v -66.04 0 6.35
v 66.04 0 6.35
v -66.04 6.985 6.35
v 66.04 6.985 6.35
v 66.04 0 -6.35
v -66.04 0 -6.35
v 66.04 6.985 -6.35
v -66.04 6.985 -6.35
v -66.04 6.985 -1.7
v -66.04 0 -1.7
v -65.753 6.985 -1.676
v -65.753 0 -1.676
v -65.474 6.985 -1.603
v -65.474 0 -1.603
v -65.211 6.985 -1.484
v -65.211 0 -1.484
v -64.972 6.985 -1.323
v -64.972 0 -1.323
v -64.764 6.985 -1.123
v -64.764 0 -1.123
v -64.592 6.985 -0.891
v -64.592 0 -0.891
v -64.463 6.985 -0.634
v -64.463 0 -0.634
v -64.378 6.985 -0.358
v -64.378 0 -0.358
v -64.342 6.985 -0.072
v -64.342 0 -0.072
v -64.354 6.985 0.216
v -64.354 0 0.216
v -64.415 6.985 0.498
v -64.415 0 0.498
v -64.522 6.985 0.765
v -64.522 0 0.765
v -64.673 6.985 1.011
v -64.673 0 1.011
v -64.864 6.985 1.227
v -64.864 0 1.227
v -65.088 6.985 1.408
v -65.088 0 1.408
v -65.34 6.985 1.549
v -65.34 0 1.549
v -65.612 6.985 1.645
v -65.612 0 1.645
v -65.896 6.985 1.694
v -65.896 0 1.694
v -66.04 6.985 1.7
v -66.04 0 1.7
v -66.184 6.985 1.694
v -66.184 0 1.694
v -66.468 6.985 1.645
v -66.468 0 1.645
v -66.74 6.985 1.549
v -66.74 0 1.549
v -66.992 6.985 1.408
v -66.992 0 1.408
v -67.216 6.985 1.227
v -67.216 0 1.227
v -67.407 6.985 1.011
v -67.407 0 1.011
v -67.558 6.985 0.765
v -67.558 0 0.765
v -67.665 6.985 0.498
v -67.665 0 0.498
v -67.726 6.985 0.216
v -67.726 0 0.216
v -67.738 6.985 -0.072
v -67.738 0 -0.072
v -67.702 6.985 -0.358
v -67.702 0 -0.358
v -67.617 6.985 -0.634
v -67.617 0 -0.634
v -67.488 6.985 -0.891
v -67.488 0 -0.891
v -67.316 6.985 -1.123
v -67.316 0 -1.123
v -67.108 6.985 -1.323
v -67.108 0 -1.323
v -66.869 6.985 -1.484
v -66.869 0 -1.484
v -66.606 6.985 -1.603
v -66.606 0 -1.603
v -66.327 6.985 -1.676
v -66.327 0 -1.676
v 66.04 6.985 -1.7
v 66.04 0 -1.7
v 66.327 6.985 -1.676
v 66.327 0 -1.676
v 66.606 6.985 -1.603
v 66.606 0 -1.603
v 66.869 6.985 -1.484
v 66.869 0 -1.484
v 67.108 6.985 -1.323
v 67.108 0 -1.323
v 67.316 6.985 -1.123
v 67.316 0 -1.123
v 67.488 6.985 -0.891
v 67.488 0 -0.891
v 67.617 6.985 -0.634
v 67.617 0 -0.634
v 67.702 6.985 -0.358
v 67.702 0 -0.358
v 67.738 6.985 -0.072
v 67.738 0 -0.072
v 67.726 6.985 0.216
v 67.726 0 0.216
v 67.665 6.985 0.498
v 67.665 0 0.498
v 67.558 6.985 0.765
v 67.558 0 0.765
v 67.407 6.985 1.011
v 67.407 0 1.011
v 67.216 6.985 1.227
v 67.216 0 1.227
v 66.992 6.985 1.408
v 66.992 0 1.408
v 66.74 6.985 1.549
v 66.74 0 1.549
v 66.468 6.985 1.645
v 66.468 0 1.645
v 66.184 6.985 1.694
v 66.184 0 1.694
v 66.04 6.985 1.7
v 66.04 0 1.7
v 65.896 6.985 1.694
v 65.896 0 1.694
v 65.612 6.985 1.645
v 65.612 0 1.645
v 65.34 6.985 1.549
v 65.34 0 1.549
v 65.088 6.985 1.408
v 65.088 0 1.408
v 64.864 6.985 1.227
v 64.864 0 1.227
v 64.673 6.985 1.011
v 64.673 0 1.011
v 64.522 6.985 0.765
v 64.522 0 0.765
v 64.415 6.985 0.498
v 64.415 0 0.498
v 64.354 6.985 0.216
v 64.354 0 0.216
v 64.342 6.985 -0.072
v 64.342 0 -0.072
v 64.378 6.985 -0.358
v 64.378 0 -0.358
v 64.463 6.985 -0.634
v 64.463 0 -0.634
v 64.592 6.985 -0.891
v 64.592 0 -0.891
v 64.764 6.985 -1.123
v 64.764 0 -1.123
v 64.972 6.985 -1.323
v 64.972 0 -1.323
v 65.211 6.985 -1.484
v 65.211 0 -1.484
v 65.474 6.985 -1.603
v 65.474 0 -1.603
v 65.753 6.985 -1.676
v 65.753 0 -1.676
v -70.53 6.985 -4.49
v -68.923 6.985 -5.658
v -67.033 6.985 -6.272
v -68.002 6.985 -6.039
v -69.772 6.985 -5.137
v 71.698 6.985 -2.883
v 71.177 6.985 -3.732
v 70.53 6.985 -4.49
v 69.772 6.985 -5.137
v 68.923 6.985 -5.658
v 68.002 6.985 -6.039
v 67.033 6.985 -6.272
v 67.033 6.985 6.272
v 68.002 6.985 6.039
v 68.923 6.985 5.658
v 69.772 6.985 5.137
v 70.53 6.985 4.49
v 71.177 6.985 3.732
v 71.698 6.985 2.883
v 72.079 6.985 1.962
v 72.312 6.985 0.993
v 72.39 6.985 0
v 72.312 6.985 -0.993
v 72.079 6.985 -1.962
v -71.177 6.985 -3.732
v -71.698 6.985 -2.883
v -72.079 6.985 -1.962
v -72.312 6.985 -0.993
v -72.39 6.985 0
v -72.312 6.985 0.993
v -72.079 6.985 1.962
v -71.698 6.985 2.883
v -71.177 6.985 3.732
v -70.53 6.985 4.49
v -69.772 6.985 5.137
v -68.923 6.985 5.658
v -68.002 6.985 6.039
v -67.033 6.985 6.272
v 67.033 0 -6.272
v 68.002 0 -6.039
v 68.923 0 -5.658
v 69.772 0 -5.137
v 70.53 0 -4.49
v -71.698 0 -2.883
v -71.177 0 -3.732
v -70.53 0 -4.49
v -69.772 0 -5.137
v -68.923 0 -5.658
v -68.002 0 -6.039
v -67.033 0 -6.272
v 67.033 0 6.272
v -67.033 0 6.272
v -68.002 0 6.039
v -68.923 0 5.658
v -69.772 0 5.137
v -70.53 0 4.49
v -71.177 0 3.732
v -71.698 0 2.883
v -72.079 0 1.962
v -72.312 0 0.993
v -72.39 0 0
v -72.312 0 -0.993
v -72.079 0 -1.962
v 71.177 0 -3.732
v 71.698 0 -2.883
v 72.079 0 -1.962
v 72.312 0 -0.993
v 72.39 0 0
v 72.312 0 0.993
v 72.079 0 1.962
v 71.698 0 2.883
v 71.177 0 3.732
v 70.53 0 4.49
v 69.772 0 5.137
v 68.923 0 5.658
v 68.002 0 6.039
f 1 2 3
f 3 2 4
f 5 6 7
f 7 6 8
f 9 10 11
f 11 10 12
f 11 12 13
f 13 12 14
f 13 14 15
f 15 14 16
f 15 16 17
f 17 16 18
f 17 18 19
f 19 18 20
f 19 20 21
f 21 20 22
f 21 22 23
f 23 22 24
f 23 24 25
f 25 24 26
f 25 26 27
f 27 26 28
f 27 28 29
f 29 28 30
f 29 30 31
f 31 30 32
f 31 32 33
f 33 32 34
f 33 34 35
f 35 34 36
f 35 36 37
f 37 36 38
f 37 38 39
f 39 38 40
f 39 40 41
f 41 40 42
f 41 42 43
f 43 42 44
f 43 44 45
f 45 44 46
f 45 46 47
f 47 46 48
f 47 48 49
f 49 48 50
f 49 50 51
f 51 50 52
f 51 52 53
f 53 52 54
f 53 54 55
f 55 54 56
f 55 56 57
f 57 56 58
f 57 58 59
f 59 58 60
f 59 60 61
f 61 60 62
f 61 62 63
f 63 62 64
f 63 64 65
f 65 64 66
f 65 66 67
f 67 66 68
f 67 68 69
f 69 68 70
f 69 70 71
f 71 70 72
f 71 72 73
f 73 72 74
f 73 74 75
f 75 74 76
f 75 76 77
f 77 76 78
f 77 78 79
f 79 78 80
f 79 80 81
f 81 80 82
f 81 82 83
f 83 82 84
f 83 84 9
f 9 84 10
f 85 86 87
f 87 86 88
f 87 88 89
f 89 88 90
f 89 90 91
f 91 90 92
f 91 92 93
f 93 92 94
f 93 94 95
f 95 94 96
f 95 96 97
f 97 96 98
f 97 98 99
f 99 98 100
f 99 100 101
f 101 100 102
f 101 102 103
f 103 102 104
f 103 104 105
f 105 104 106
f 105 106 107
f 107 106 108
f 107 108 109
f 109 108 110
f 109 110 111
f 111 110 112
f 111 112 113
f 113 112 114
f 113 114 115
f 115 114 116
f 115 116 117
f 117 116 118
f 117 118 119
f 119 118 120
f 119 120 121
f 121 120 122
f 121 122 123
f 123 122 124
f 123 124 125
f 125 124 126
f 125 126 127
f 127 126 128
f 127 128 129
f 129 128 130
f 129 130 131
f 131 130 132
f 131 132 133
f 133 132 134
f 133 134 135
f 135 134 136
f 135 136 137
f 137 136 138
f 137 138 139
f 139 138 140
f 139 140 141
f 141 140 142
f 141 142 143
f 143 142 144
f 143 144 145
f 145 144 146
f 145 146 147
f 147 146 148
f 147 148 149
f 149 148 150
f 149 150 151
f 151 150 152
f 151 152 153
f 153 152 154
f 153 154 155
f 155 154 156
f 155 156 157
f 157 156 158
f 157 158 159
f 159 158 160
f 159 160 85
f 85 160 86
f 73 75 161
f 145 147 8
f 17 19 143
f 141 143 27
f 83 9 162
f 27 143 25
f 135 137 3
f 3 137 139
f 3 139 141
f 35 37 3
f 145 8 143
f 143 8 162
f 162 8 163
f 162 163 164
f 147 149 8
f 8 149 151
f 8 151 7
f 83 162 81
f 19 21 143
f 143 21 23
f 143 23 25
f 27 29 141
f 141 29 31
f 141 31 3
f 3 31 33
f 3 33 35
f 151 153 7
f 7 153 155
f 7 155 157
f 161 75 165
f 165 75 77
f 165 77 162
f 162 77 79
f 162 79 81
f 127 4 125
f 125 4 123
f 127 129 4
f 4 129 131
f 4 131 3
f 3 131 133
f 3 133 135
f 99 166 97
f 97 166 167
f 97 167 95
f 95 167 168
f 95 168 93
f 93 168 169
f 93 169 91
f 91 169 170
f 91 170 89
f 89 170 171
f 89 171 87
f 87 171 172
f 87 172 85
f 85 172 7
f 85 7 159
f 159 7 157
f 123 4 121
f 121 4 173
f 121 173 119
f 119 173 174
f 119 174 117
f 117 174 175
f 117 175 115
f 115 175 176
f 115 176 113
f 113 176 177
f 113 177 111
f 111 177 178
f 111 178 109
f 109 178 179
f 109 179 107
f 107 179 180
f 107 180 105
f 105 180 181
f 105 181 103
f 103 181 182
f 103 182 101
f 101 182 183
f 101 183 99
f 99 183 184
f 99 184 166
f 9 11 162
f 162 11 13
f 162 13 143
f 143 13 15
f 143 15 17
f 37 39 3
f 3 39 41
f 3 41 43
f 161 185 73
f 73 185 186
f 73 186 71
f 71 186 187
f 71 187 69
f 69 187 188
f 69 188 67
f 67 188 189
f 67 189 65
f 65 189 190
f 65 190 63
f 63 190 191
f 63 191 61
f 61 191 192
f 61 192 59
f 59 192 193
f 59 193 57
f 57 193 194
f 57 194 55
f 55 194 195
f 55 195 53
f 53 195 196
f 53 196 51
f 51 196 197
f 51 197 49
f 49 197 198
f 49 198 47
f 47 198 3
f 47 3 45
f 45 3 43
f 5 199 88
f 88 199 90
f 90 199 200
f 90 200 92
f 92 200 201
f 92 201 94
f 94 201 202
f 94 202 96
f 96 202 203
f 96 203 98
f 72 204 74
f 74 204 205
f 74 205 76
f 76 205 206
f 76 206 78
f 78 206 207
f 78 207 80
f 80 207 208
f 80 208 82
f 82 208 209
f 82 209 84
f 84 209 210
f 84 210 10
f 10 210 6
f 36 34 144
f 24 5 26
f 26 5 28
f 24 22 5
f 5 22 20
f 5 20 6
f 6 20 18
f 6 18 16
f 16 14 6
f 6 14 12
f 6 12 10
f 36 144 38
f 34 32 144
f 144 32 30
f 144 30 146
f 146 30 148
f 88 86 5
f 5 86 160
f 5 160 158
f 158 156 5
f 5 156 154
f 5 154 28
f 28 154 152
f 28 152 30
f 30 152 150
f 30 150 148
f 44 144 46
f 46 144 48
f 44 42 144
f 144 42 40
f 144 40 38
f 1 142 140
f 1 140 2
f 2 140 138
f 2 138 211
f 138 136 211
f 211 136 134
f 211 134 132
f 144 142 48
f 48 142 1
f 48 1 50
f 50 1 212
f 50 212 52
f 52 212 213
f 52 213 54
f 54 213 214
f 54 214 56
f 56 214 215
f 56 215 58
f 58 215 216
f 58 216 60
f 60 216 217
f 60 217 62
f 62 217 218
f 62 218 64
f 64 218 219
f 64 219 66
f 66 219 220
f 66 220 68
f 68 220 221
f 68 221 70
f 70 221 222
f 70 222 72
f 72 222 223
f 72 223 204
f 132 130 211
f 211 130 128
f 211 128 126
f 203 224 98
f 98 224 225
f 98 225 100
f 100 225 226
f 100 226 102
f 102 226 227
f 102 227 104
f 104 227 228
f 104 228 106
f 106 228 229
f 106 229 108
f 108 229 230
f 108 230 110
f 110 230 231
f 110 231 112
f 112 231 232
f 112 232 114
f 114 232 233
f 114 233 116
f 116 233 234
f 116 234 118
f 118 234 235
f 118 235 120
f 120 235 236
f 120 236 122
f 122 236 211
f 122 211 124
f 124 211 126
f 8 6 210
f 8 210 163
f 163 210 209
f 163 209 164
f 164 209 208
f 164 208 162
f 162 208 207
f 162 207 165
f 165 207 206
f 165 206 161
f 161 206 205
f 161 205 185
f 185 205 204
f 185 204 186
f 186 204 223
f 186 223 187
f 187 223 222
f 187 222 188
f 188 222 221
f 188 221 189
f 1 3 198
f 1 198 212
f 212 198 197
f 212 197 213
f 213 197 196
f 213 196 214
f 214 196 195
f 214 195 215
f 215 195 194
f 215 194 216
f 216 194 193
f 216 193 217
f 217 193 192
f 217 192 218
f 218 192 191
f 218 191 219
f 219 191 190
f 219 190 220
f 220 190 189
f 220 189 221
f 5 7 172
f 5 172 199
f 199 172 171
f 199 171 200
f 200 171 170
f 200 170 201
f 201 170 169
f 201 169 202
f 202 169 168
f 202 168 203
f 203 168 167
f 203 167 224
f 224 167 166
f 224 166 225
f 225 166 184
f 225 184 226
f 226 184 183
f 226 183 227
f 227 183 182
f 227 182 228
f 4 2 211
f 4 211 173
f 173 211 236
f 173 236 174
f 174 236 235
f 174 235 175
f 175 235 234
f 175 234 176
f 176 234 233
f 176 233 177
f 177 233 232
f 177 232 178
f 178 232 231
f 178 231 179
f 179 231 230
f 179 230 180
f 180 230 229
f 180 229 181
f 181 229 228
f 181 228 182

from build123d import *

# Parameters (mm, degrees)
SKETCH1_R           = 1.7
BOSS_EXTRUDE1_DEPTH = 6.985
FILLET1_R           = 6.35


with BuildPart() as part:
    # Sketch1 → Boss-Extrude1 (new body)
    with BuildSketch(Plane(origin=(0, 0, 0), x_dir=(1, 0, 0), z_dir=(0, 1, 0))):
        Polygon((-72.39, 6.35), (-72.39, -6.35), (-6.35, -6.35), (6.35, -6.35), (72.39, -6.35), (72.39, 6.35), (6.35, 6.35), (-6.35, 6.35), align=None)
        with Locations(Location((-66.04, 0, 0), (0, 0, 270))):
            Circle(SKETCH1_R, mode=Mode.SUBTRACT)
        with Locations(Location((66.04, 0, 0), (0, 0, 270))):
            Circle(SKETCH1_R, mode=Mode.SUBTRACT)
    extrude(amount=BOSS_EXTRUDE1_DEPTH)

    # Fillet1
    fillet1_edges = [part.edges().sort_by_distance(p)[0] for p in [
        (72.39, 3.4925, -6.35),
        (-72.39, 3.4925, -6.35),
        (-72.39, 3.4925, 6.35),
        (72.39, 3.4925, 6.35),
    ]]
    fillet(fillet1_edges, radius=FILLET1_R - 0.0001)  # a hair under: the kernel refuses the full size


solid = part.part
